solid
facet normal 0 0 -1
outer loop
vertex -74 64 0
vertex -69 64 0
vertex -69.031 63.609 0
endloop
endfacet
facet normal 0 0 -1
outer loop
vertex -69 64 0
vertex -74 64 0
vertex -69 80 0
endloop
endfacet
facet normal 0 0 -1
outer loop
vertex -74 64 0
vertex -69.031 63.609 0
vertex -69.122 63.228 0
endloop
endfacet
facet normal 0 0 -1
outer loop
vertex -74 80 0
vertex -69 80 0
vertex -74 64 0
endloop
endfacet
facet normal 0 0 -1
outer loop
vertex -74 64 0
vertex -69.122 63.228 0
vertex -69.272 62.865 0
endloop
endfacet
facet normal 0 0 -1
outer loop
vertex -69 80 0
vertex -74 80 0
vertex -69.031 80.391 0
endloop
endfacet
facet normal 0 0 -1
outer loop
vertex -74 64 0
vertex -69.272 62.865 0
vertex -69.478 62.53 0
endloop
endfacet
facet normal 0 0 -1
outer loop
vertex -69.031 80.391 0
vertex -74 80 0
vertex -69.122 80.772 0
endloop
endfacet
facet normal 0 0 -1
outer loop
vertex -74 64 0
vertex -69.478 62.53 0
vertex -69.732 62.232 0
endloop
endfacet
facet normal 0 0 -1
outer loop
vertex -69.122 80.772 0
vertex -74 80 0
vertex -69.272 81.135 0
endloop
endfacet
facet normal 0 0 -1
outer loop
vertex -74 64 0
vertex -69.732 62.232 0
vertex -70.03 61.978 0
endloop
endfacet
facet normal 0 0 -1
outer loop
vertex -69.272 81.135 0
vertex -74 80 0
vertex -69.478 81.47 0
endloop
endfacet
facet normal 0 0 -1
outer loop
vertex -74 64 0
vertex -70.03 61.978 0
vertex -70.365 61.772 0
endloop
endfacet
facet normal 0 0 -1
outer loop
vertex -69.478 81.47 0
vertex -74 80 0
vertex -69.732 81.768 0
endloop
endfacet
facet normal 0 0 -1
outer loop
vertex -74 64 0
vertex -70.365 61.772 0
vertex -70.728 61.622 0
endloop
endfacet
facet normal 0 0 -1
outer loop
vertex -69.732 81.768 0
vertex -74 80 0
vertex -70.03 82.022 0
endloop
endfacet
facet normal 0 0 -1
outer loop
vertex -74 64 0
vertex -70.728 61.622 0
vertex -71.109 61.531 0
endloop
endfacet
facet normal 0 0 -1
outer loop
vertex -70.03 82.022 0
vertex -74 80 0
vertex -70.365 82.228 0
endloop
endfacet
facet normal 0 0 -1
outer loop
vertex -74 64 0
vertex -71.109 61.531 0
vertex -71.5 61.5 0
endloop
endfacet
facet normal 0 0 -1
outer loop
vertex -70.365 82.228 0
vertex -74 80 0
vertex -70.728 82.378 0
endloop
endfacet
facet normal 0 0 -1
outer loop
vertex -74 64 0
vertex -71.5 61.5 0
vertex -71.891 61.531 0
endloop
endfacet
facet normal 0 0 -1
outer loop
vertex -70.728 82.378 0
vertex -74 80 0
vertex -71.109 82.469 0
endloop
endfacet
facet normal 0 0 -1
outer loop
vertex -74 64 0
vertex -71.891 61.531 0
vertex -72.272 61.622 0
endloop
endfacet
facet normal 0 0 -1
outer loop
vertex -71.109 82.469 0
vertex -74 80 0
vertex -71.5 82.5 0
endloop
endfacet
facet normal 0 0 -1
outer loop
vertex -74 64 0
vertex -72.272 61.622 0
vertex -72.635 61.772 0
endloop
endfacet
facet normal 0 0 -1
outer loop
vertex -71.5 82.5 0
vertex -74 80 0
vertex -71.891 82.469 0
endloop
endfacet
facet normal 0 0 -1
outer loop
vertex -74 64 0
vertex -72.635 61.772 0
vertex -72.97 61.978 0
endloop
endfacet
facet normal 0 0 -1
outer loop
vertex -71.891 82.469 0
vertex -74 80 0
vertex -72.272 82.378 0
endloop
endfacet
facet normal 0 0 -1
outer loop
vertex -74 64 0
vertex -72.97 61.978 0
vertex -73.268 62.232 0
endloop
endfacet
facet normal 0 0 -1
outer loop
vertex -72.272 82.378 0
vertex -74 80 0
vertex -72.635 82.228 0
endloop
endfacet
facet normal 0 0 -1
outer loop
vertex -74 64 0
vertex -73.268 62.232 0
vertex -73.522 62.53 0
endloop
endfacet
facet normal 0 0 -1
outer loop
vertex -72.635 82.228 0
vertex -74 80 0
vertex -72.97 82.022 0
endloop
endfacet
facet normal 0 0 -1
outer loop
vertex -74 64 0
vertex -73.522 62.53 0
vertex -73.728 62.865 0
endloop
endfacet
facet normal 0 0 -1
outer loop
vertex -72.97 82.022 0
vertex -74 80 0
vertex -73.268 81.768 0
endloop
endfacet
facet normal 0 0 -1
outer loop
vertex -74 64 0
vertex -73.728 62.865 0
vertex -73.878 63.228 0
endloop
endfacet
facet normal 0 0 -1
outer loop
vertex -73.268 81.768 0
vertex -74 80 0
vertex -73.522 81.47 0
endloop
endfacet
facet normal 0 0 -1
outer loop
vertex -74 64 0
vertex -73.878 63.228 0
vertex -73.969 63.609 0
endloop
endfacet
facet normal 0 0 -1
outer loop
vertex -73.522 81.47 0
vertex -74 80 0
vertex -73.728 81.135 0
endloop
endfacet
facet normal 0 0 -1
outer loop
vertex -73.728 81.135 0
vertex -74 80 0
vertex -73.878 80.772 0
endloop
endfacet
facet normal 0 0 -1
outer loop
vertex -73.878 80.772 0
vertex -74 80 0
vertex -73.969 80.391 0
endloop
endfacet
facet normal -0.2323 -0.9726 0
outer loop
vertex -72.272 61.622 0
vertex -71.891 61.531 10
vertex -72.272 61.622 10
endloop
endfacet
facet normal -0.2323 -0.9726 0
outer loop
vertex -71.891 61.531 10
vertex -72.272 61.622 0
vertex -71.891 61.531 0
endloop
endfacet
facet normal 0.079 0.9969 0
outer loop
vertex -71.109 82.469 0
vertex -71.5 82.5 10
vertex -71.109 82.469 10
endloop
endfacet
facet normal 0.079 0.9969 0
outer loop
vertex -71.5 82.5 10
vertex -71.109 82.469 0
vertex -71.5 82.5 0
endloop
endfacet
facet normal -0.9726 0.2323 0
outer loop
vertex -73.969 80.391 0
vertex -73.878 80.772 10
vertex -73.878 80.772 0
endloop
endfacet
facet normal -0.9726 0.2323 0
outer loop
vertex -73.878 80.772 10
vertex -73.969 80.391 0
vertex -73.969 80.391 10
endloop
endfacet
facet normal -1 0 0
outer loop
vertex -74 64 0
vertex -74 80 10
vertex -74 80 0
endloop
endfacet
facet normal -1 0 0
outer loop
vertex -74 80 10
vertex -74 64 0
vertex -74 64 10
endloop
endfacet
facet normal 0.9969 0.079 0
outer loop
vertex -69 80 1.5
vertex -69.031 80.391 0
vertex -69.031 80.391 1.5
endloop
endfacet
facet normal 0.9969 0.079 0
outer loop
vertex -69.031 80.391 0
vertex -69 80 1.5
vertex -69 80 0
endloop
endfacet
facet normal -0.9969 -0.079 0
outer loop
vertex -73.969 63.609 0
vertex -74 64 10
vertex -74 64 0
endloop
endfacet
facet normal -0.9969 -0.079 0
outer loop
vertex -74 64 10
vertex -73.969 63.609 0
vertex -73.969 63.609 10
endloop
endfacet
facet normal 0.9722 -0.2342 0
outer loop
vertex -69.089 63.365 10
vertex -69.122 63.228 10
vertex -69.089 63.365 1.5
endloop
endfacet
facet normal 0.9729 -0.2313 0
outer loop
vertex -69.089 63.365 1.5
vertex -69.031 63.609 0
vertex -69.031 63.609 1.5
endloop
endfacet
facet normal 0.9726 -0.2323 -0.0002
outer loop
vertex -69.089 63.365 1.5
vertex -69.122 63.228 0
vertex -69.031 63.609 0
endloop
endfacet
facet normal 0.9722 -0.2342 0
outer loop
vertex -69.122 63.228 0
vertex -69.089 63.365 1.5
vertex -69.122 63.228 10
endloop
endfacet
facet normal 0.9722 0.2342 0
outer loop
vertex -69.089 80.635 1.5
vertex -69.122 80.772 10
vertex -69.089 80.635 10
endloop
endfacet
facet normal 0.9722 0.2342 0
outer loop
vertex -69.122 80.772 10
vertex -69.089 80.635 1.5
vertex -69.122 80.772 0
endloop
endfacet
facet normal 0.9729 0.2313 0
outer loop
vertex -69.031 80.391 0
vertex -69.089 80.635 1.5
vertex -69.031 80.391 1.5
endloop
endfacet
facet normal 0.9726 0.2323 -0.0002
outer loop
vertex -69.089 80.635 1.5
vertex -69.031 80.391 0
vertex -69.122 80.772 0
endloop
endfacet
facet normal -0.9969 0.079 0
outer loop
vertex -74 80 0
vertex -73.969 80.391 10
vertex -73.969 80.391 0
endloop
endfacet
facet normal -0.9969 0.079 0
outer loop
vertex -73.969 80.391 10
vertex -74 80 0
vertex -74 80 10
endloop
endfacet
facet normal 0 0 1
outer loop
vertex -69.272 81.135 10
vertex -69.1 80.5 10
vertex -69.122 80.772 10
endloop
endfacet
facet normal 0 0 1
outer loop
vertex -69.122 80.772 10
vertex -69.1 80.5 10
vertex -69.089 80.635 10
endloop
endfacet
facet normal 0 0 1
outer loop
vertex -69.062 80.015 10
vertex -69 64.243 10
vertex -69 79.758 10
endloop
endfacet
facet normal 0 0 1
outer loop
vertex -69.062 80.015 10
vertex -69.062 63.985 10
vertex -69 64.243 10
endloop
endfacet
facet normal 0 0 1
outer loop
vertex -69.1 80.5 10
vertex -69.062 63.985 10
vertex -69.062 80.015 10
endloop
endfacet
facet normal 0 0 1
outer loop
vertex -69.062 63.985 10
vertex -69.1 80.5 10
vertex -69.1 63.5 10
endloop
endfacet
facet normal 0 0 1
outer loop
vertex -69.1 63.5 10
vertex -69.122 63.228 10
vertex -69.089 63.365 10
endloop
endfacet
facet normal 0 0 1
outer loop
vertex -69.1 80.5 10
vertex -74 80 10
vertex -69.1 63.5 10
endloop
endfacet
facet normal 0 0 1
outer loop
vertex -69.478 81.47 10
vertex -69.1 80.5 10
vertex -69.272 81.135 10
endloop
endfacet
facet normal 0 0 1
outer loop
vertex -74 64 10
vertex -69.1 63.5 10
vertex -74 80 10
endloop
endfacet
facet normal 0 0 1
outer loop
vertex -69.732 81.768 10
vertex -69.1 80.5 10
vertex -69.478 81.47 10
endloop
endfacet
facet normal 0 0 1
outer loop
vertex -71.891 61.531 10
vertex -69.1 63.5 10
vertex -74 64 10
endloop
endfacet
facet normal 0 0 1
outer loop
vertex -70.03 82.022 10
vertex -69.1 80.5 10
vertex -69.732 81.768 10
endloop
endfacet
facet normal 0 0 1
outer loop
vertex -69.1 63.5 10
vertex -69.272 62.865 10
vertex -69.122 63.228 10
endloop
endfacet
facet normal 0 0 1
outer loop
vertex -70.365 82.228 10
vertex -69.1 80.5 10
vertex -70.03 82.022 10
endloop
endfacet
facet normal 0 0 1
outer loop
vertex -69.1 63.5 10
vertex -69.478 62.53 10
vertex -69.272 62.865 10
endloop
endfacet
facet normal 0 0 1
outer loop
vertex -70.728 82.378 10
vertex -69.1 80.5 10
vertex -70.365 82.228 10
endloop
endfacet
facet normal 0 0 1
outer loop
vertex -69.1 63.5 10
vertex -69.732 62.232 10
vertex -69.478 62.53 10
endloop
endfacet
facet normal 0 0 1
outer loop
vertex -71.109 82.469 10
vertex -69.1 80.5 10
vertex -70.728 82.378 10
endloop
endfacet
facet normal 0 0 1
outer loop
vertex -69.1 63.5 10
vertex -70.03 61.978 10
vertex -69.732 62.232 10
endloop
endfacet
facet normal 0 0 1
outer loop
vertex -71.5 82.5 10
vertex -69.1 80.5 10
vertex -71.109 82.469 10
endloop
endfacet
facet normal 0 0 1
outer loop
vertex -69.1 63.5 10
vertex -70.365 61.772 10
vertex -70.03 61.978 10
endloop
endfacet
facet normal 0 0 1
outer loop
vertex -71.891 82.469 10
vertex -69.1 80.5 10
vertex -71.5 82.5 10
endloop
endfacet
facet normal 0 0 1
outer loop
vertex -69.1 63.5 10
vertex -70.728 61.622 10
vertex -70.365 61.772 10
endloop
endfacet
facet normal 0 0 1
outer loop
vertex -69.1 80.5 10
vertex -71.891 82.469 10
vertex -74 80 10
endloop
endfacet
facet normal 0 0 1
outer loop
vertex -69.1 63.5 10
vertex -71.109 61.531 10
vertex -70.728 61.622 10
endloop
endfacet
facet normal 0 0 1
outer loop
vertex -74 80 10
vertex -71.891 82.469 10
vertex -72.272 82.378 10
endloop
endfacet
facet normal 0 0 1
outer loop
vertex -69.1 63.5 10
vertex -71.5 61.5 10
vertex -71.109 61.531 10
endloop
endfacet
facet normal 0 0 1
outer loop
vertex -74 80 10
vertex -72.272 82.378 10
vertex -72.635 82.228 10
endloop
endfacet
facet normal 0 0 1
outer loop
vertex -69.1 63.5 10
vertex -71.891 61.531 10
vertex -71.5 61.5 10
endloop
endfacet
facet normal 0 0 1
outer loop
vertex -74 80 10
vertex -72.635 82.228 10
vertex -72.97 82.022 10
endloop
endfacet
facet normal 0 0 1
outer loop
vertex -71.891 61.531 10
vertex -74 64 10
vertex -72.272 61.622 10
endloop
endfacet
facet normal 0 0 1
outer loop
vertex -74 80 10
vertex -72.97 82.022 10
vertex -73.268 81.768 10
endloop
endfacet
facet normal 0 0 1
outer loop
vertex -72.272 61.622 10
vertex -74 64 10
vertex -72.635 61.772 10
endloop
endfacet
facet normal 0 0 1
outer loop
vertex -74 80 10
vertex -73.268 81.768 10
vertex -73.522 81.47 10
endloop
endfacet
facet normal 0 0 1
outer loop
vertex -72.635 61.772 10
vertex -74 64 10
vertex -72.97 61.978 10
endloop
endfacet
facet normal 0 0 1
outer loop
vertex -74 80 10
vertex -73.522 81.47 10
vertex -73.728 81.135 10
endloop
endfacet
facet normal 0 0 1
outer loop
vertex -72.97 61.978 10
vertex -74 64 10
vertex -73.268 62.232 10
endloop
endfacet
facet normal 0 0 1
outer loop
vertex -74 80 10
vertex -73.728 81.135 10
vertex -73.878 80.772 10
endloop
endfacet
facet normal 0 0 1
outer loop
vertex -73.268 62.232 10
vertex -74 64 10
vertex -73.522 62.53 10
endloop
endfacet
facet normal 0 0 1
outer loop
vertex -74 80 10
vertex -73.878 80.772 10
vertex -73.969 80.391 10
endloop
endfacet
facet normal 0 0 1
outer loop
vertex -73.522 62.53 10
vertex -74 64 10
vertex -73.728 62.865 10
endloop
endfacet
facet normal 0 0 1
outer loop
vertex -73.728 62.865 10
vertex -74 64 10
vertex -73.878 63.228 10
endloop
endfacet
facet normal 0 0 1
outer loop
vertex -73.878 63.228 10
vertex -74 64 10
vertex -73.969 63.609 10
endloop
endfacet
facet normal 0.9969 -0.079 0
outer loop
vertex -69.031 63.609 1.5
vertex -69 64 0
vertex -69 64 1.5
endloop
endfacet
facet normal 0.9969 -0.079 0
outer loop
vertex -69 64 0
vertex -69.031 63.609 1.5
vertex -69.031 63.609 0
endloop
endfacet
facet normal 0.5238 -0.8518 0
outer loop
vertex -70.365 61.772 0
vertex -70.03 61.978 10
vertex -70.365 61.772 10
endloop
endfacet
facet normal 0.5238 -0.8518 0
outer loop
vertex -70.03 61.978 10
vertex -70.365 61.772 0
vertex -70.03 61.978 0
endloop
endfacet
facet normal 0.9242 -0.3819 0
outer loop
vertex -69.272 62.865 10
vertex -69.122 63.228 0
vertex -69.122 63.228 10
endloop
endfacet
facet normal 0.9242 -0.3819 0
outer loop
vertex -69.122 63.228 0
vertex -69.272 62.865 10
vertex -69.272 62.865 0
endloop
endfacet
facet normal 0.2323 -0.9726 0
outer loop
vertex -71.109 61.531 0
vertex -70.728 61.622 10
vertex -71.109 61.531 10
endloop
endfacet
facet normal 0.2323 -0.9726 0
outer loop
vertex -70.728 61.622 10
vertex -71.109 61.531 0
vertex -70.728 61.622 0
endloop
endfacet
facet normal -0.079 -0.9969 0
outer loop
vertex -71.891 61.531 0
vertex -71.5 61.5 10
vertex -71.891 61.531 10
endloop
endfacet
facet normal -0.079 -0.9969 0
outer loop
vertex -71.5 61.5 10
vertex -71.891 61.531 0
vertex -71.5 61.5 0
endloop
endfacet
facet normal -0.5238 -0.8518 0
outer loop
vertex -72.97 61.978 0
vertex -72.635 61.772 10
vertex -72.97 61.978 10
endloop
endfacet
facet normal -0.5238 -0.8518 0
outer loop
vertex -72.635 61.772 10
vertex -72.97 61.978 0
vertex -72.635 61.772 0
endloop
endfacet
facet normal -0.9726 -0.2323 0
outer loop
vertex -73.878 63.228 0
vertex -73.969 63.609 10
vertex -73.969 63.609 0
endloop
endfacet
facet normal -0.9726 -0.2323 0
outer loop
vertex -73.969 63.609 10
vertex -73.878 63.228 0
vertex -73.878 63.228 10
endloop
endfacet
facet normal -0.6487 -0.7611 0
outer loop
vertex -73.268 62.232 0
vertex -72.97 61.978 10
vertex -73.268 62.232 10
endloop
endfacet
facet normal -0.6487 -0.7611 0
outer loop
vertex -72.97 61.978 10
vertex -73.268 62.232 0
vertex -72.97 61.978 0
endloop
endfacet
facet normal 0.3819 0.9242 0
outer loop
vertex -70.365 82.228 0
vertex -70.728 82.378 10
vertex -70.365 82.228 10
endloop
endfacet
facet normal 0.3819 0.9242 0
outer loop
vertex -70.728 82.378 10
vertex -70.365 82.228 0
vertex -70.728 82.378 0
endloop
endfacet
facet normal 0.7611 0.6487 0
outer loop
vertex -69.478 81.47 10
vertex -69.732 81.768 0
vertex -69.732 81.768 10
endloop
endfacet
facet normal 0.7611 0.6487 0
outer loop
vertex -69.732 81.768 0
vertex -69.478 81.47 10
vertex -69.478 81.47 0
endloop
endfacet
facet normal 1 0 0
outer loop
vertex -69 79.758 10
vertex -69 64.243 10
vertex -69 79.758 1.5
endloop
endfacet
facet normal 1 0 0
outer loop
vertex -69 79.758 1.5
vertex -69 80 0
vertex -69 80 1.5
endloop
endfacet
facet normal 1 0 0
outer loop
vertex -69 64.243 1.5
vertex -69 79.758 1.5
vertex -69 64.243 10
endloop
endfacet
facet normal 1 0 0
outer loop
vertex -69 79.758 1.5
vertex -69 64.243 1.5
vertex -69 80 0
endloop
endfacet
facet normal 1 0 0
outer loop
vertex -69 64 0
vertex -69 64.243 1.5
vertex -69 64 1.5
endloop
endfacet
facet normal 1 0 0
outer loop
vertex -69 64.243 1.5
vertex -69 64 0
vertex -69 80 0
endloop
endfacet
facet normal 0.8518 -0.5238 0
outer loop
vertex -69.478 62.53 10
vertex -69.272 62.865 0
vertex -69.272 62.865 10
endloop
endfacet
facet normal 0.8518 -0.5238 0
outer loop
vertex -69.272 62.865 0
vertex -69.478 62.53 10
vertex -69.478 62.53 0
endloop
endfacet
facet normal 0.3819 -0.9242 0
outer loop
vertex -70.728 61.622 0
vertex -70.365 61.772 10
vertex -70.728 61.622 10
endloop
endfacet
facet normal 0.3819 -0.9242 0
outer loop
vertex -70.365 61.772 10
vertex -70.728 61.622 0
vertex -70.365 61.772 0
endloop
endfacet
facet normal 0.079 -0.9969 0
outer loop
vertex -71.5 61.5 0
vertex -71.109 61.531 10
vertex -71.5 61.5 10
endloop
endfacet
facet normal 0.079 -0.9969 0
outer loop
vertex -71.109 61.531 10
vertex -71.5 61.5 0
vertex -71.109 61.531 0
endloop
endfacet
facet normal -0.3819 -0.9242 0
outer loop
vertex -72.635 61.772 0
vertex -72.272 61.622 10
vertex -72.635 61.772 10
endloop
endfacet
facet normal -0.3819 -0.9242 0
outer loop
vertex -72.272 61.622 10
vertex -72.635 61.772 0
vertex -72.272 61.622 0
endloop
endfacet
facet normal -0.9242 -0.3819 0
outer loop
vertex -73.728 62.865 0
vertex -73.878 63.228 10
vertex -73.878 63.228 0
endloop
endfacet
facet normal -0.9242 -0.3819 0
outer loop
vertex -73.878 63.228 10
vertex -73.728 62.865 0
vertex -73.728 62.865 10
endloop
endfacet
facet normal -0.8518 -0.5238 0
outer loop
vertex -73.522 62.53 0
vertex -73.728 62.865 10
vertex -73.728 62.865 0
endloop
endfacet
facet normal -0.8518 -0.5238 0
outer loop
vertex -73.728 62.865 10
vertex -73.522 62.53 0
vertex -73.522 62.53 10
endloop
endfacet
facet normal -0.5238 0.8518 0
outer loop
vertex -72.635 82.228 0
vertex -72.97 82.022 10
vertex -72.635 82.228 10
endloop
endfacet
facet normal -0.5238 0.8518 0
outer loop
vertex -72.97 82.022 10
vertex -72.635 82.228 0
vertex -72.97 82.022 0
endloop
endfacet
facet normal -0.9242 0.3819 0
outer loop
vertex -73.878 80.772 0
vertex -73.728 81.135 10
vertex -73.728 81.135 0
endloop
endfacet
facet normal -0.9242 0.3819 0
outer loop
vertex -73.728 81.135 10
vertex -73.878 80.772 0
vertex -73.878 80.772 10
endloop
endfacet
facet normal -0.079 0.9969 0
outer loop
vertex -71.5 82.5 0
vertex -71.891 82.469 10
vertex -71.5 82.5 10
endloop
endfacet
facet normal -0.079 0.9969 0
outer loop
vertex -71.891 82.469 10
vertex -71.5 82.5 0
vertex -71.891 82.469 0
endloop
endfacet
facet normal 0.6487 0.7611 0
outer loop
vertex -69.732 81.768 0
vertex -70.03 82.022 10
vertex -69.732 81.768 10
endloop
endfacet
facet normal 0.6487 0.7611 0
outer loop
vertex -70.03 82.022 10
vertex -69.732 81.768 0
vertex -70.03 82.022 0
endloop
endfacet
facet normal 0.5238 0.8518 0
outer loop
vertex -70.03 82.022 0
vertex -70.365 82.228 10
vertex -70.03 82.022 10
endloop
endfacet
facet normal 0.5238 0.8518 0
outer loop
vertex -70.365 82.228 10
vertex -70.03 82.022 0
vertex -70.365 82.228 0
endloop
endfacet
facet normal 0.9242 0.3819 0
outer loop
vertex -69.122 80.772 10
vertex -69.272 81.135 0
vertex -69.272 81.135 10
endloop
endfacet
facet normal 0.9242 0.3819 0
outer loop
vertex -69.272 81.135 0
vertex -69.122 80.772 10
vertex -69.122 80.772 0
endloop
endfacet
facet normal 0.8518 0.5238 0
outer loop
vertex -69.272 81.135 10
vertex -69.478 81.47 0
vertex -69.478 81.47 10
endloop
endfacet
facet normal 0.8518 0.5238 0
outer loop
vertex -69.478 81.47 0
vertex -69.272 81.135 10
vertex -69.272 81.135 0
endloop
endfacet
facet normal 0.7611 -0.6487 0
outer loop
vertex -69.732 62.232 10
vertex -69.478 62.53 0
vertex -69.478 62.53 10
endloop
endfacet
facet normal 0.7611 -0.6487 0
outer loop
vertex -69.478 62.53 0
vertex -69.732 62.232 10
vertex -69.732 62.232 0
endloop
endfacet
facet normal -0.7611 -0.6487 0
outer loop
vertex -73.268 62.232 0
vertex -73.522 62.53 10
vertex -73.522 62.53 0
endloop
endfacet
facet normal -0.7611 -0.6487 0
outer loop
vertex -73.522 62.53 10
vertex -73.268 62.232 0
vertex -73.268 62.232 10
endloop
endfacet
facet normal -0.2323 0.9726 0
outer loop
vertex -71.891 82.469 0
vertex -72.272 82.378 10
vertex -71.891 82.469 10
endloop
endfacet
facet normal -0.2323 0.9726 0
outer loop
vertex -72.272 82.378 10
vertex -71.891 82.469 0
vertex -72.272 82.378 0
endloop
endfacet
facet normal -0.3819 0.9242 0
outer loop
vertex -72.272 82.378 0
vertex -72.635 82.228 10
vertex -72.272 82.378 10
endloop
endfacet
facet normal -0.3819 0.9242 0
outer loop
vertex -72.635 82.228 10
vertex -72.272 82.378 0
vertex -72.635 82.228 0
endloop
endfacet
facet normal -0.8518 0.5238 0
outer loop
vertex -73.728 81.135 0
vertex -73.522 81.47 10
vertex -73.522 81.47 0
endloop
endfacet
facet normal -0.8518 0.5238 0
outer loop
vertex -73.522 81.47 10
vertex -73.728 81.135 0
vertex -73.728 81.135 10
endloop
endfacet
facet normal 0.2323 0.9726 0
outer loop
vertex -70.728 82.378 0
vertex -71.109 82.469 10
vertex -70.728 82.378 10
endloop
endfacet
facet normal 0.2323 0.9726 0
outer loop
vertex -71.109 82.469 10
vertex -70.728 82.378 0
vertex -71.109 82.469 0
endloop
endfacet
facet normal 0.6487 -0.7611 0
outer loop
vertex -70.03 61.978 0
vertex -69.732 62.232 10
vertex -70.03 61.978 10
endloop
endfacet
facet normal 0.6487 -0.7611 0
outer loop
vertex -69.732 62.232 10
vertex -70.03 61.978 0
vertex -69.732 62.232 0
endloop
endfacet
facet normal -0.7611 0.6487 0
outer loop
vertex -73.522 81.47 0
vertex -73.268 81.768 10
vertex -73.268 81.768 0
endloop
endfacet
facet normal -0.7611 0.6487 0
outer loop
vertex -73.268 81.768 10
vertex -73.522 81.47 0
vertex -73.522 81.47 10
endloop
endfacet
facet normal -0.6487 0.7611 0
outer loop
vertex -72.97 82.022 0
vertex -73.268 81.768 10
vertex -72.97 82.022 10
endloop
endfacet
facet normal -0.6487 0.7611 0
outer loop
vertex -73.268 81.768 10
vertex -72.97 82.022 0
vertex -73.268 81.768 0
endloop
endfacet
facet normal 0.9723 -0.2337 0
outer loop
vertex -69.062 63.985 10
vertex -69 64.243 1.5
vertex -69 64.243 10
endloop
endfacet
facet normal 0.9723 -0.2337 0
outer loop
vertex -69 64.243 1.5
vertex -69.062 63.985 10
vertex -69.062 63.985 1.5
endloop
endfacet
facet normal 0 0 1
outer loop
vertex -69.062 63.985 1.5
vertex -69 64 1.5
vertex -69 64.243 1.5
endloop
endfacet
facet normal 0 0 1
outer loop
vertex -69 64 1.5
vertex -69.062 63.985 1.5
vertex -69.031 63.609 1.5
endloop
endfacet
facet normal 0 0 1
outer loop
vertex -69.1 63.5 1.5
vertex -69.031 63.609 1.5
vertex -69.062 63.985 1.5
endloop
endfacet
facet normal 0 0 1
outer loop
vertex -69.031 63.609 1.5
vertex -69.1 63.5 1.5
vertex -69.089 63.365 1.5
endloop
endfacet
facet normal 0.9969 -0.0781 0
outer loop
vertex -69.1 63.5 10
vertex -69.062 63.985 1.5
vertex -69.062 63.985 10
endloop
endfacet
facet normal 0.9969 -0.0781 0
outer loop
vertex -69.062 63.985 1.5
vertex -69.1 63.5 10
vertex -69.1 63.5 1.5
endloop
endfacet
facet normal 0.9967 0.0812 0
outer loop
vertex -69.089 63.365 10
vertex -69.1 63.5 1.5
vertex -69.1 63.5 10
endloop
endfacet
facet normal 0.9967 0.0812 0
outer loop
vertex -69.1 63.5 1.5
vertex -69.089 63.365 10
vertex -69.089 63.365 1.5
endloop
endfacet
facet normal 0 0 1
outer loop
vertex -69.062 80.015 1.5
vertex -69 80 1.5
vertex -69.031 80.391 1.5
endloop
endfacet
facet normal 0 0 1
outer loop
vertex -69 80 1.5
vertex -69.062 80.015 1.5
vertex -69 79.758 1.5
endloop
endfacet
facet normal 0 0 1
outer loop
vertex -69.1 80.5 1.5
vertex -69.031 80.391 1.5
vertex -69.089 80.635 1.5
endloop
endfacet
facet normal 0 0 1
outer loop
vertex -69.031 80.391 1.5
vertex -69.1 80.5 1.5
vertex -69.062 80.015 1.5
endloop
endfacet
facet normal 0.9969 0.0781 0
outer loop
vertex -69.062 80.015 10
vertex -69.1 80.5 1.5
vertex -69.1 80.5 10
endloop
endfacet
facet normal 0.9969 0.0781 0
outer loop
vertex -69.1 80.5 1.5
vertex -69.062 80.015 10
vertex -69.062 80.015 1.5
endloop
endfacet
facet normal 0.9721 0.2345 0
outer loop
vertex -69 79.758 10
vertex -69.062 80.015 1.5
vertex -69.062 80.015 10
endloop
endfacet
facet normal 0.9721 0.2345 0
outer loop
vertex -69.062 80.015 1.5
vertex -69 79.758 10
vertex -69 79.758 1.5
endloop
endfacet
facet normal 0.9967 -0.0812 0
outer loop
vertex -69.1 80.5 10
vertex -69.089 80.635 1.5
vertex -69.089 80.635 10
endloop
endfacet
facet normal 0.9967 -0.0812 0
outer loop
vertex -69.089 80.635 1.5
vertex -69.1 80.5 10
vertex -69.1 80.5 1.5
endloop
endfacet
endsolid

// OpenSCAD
$fn = 40;

// Module gá cảm biến VL53L0X tích hợp ngàm cài snap-fit & cửa sổ laser 90° + 45°
module vl53l0x_snap_pod(is_left = true) {
    sx = is_left ? -1 : 1;
    // Tọa độ gắn trên mép sườn plate (X = sx * 60.0mm, Y = 62.0..82.0mm, Z = 0..12.0mm trên plate)
    // Cánh gá vươn ra ngoài từ |X| = 60.0 đến |X| = 72.5mm
    difference() {
        union() {
            // Khối cánh vươn chịu lực (X = sx*60..sx*72.5, Y = 61.5..82.0, Z = 0..10.0)
            hull() {
                translate([sx * 60.0, 62.0, 0.0]) cube([sx * 0.1, 20.0, 6.0]);
                translate([sx * 71.5, 64.0, 0.0]) cylinder(r=2.5, h=10.0);
                translate([sx * 71.5, 80.0, 0.0]) cylinder(r=2.5, h=10.0);
                translate([sx * 60.0, 82.0, 0.0]) cube([sx * 0.1, 0.1, 6.0]);
            }
            // 2 Ngàm cài đàn hồi Snap-fit giữ bo mạch VL53L0X (tại Y = 66.0 và Y = 78.0)
            for (py = [66.0, 78.0]) {
                translate([sx * 72.8, py - 2.0, 0.0])
                    cube([sx * 1.8, 4.0, 12.0]);
                // Đầu móc ngàm cài có vát 45° dẫn hướng ấn tách
                translate([sx * 72.8, py - 2.0, 10.5])
                    hull() {
                        cube([sx * 1.8, 4.0, 1.5]);
                        translate([-sx * 1.0, 0, 0]) cube([sx * 0.1, 4.0, 1.0]);
                    }
            }
            // Vách chống trượt & gờ tì sau cho bo mạch VL53L0X
            translate([sx * 70.0, 64.0, 0.0])
                cube([sx * 1.5, 16.0, 10.0]);
        }
        
        // Khe cắm bo mạch VL53L0X (khe rộng 2.0mm cho PCB dày 1.6mm + dung sai 0.4mm, dài 25.5mm, cao 11.5mm)
        translate([sx * 71.6, 64.0, 1.5])
            cube([sx * 2.2, 16.0, 12.0]);
            
        // Cửa sổ quang học bắn tia laser ToF 90° (rộng 12.0 x cao 7.0mm kèm vát loe 35°)
        translate([sx * 68.0, 66.0, 3.0])
            cube([sx * 8.0, 12.0, 6.5]);
        hull() {
            translate([sx * 70.5, 66.0, 3.0]) cube([sx * 0.1, 12.0, 6.5]);
            translate([sx * 74.0, 64.5, 1.5]) cube([sx * 0.1, 15.0, 9.5]);
        }
        
        // 2 Lỗ ốc M2.5 / M3 dự phòng (khoảng cách tâm 18.0mm: Y = 63.0 và Y = 81.0)
        translate([sx * 66.0, 63.5, -1.0]) cylinder(d=3.2, h=15.0);
        translate([sx * 66.0, 80.5, -1.0]) cylinder(d=3.2, h=15.0);
        // Hốc tán M3 âm dưới đáy
        translate([sx * 66.0, 63.5, 1.5]) cylinder(d=6.2, h=12.0);
        translate([sx * 66.0, 80.5, 1.5]) cylinder(d=6.2, h=12.0);
        
        // Rãnh luồn dây cảm biến I2C 4P ngầm xuyên vào sàn plate
        translate([sx * 59.0, 68.0, 1.0])
            cube([sx * 12.0, 8.0, 3.5]);
    }
}

// Render test left pod
vl53l0x_snap_pod(is_left=true);
